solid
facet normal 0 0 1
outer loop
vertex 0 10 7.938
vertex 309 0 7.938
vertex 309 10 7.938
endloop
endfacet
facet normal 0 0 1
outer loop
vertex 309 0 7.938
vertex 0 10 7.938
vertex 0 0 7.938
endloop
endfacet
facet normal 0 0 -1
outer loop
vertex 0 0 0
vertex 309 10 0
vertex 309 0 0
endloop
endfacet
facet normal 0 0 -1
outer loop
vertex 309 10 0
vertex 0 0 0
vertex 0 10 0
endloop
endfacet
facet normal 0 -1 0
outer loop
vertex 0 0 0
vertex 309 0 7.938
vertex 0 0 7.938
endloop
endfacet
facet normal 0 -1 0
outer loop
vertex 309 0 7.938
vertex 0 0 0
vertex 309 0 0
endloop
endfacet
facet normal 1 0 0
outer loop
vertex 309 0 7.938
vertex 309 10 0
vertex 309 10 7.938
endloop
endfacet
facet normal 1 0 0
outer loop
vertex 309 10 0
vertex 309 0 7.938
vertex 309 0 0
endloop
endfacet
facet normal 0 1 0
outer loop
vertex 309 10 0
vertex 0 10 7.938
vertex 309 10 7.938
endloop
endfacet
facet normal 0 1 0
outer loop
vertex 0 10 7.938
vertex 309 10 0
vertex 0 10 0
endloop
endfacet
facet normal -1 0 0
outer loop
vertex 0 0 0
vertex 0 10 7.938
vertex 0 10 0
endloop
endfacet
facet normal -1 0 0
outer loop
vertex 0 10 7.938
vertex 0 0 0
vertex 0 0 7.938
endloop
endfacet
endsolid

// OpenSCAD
// file: screw-hole.scad
// Generic screw holder

// Copyright (C) 2021 Jeremy Bennett <jeremy@jeremybennett.com>

// Contributor Jeremy Bennett <jeremy@jeremybennett.com>

// SPDX-License-Identifier: CC-BY-SA-4.0


// The countersink height is calculated as:
//
//      x - y
//    ----------
//    2 tan(B/2)
//
// where x is the head diameter, y is the shank diameter and B is the head
// angle (100 degrees for DIN 7997x I believe).
//
// Table of 2 tan(B/2) for various B
//
//  60    1.1547
//  82    1.7386
//  90    2.0000
// 100    2.3835
// 110    2.8563

// Small amount
CS_EPS = 0.1;

// Height of rim above countersink
CS_RIM_HEIGHT = 0.3;

// Screw height - effectively infinite!
SCREW_HEIGHT = 100;

// Table of screw dimensions for DIN 7997z countersunk wood screws
// Entry is thread diameter, head diameter, head height.
SCREW_TAB = [ [2.5,  4.7, 1.50],
	      [3.0,  5.6, 1.65],
	      [3.5,  6.5, 1.93],
	      [4.0,  7.5, 2.20],
	      [4.5,  8.3, 2.35],
	      [5.0,  9.2, 2.50],
	      [5.5, 10.2, 2.75],
	      [6.0, 11.0, 3.00],
              [0.0,  0.0, 0.00] ];		// End marker

// Recursively look up dimensions in the SCREW_TAB
function recursive_screw_dims (diam, n) =
     ( (SCREW_TAB[n][0] == 0.0) ? SCREW_TAB[n] :
       (SCREW_TAB[n][0] == diam) ? SCREW_TAB[n] :
       recursive_screw_dims (diam, n + 1) );

// Look up a screw's dimensions
function screw_dims (diam = 4.0) = recursive_screw_dims (diam, 0);

// Hole for a countersink screw
module screw_hole (shank_diam, invert = true) {
     let (dims = screw_dims (shank_diam),
	  head_diam = dims[1],
	  cs_height = dims[2],
	  screw_angle = invert ? 180 : 0) {
	  rotate (a = [0, screw_angle, 0]) {
	       cylinder(r = head_diam / 2, h = CS_RIM_HEIGHT + CS_EPS,
			center = false, $fn = 45);
	       translate(v = [0, 0, CS_RIM_HEIGHT])
	            cylinder(r1 = head_diam / 2, r2 = shank_diam / 2,
			     h = cs_height, center = false, $fn = 45);
	       cylinder(r = shank_diam / 2, h = SCREW_HEIGHT, center = false,
			$fn = 45);
	  }
     }
}
// main file
// Hinge backstop
//
// Copyright (C) 2021 Jeremy Bennett <jeremy@jeremybennett.com>
// Contributor Jeremy Bennett <jeremy@jeremybennett.com>
//
// This is part of the open source laptop stand
//
// SPDX-License-Identifier: CC-BY-SA-4.0

// A strip behind the baseboard to take the ends of the hinge screws

include <screw-hole.scad>

EPS = 0.01;
D = 25.4 * 5.0 / 16.0;		// 5/16 inches in mm
L = 345.0 - 18.0 * 2;
W = 10.0;

// The board
cube (size = [L, W, D], center = false);
